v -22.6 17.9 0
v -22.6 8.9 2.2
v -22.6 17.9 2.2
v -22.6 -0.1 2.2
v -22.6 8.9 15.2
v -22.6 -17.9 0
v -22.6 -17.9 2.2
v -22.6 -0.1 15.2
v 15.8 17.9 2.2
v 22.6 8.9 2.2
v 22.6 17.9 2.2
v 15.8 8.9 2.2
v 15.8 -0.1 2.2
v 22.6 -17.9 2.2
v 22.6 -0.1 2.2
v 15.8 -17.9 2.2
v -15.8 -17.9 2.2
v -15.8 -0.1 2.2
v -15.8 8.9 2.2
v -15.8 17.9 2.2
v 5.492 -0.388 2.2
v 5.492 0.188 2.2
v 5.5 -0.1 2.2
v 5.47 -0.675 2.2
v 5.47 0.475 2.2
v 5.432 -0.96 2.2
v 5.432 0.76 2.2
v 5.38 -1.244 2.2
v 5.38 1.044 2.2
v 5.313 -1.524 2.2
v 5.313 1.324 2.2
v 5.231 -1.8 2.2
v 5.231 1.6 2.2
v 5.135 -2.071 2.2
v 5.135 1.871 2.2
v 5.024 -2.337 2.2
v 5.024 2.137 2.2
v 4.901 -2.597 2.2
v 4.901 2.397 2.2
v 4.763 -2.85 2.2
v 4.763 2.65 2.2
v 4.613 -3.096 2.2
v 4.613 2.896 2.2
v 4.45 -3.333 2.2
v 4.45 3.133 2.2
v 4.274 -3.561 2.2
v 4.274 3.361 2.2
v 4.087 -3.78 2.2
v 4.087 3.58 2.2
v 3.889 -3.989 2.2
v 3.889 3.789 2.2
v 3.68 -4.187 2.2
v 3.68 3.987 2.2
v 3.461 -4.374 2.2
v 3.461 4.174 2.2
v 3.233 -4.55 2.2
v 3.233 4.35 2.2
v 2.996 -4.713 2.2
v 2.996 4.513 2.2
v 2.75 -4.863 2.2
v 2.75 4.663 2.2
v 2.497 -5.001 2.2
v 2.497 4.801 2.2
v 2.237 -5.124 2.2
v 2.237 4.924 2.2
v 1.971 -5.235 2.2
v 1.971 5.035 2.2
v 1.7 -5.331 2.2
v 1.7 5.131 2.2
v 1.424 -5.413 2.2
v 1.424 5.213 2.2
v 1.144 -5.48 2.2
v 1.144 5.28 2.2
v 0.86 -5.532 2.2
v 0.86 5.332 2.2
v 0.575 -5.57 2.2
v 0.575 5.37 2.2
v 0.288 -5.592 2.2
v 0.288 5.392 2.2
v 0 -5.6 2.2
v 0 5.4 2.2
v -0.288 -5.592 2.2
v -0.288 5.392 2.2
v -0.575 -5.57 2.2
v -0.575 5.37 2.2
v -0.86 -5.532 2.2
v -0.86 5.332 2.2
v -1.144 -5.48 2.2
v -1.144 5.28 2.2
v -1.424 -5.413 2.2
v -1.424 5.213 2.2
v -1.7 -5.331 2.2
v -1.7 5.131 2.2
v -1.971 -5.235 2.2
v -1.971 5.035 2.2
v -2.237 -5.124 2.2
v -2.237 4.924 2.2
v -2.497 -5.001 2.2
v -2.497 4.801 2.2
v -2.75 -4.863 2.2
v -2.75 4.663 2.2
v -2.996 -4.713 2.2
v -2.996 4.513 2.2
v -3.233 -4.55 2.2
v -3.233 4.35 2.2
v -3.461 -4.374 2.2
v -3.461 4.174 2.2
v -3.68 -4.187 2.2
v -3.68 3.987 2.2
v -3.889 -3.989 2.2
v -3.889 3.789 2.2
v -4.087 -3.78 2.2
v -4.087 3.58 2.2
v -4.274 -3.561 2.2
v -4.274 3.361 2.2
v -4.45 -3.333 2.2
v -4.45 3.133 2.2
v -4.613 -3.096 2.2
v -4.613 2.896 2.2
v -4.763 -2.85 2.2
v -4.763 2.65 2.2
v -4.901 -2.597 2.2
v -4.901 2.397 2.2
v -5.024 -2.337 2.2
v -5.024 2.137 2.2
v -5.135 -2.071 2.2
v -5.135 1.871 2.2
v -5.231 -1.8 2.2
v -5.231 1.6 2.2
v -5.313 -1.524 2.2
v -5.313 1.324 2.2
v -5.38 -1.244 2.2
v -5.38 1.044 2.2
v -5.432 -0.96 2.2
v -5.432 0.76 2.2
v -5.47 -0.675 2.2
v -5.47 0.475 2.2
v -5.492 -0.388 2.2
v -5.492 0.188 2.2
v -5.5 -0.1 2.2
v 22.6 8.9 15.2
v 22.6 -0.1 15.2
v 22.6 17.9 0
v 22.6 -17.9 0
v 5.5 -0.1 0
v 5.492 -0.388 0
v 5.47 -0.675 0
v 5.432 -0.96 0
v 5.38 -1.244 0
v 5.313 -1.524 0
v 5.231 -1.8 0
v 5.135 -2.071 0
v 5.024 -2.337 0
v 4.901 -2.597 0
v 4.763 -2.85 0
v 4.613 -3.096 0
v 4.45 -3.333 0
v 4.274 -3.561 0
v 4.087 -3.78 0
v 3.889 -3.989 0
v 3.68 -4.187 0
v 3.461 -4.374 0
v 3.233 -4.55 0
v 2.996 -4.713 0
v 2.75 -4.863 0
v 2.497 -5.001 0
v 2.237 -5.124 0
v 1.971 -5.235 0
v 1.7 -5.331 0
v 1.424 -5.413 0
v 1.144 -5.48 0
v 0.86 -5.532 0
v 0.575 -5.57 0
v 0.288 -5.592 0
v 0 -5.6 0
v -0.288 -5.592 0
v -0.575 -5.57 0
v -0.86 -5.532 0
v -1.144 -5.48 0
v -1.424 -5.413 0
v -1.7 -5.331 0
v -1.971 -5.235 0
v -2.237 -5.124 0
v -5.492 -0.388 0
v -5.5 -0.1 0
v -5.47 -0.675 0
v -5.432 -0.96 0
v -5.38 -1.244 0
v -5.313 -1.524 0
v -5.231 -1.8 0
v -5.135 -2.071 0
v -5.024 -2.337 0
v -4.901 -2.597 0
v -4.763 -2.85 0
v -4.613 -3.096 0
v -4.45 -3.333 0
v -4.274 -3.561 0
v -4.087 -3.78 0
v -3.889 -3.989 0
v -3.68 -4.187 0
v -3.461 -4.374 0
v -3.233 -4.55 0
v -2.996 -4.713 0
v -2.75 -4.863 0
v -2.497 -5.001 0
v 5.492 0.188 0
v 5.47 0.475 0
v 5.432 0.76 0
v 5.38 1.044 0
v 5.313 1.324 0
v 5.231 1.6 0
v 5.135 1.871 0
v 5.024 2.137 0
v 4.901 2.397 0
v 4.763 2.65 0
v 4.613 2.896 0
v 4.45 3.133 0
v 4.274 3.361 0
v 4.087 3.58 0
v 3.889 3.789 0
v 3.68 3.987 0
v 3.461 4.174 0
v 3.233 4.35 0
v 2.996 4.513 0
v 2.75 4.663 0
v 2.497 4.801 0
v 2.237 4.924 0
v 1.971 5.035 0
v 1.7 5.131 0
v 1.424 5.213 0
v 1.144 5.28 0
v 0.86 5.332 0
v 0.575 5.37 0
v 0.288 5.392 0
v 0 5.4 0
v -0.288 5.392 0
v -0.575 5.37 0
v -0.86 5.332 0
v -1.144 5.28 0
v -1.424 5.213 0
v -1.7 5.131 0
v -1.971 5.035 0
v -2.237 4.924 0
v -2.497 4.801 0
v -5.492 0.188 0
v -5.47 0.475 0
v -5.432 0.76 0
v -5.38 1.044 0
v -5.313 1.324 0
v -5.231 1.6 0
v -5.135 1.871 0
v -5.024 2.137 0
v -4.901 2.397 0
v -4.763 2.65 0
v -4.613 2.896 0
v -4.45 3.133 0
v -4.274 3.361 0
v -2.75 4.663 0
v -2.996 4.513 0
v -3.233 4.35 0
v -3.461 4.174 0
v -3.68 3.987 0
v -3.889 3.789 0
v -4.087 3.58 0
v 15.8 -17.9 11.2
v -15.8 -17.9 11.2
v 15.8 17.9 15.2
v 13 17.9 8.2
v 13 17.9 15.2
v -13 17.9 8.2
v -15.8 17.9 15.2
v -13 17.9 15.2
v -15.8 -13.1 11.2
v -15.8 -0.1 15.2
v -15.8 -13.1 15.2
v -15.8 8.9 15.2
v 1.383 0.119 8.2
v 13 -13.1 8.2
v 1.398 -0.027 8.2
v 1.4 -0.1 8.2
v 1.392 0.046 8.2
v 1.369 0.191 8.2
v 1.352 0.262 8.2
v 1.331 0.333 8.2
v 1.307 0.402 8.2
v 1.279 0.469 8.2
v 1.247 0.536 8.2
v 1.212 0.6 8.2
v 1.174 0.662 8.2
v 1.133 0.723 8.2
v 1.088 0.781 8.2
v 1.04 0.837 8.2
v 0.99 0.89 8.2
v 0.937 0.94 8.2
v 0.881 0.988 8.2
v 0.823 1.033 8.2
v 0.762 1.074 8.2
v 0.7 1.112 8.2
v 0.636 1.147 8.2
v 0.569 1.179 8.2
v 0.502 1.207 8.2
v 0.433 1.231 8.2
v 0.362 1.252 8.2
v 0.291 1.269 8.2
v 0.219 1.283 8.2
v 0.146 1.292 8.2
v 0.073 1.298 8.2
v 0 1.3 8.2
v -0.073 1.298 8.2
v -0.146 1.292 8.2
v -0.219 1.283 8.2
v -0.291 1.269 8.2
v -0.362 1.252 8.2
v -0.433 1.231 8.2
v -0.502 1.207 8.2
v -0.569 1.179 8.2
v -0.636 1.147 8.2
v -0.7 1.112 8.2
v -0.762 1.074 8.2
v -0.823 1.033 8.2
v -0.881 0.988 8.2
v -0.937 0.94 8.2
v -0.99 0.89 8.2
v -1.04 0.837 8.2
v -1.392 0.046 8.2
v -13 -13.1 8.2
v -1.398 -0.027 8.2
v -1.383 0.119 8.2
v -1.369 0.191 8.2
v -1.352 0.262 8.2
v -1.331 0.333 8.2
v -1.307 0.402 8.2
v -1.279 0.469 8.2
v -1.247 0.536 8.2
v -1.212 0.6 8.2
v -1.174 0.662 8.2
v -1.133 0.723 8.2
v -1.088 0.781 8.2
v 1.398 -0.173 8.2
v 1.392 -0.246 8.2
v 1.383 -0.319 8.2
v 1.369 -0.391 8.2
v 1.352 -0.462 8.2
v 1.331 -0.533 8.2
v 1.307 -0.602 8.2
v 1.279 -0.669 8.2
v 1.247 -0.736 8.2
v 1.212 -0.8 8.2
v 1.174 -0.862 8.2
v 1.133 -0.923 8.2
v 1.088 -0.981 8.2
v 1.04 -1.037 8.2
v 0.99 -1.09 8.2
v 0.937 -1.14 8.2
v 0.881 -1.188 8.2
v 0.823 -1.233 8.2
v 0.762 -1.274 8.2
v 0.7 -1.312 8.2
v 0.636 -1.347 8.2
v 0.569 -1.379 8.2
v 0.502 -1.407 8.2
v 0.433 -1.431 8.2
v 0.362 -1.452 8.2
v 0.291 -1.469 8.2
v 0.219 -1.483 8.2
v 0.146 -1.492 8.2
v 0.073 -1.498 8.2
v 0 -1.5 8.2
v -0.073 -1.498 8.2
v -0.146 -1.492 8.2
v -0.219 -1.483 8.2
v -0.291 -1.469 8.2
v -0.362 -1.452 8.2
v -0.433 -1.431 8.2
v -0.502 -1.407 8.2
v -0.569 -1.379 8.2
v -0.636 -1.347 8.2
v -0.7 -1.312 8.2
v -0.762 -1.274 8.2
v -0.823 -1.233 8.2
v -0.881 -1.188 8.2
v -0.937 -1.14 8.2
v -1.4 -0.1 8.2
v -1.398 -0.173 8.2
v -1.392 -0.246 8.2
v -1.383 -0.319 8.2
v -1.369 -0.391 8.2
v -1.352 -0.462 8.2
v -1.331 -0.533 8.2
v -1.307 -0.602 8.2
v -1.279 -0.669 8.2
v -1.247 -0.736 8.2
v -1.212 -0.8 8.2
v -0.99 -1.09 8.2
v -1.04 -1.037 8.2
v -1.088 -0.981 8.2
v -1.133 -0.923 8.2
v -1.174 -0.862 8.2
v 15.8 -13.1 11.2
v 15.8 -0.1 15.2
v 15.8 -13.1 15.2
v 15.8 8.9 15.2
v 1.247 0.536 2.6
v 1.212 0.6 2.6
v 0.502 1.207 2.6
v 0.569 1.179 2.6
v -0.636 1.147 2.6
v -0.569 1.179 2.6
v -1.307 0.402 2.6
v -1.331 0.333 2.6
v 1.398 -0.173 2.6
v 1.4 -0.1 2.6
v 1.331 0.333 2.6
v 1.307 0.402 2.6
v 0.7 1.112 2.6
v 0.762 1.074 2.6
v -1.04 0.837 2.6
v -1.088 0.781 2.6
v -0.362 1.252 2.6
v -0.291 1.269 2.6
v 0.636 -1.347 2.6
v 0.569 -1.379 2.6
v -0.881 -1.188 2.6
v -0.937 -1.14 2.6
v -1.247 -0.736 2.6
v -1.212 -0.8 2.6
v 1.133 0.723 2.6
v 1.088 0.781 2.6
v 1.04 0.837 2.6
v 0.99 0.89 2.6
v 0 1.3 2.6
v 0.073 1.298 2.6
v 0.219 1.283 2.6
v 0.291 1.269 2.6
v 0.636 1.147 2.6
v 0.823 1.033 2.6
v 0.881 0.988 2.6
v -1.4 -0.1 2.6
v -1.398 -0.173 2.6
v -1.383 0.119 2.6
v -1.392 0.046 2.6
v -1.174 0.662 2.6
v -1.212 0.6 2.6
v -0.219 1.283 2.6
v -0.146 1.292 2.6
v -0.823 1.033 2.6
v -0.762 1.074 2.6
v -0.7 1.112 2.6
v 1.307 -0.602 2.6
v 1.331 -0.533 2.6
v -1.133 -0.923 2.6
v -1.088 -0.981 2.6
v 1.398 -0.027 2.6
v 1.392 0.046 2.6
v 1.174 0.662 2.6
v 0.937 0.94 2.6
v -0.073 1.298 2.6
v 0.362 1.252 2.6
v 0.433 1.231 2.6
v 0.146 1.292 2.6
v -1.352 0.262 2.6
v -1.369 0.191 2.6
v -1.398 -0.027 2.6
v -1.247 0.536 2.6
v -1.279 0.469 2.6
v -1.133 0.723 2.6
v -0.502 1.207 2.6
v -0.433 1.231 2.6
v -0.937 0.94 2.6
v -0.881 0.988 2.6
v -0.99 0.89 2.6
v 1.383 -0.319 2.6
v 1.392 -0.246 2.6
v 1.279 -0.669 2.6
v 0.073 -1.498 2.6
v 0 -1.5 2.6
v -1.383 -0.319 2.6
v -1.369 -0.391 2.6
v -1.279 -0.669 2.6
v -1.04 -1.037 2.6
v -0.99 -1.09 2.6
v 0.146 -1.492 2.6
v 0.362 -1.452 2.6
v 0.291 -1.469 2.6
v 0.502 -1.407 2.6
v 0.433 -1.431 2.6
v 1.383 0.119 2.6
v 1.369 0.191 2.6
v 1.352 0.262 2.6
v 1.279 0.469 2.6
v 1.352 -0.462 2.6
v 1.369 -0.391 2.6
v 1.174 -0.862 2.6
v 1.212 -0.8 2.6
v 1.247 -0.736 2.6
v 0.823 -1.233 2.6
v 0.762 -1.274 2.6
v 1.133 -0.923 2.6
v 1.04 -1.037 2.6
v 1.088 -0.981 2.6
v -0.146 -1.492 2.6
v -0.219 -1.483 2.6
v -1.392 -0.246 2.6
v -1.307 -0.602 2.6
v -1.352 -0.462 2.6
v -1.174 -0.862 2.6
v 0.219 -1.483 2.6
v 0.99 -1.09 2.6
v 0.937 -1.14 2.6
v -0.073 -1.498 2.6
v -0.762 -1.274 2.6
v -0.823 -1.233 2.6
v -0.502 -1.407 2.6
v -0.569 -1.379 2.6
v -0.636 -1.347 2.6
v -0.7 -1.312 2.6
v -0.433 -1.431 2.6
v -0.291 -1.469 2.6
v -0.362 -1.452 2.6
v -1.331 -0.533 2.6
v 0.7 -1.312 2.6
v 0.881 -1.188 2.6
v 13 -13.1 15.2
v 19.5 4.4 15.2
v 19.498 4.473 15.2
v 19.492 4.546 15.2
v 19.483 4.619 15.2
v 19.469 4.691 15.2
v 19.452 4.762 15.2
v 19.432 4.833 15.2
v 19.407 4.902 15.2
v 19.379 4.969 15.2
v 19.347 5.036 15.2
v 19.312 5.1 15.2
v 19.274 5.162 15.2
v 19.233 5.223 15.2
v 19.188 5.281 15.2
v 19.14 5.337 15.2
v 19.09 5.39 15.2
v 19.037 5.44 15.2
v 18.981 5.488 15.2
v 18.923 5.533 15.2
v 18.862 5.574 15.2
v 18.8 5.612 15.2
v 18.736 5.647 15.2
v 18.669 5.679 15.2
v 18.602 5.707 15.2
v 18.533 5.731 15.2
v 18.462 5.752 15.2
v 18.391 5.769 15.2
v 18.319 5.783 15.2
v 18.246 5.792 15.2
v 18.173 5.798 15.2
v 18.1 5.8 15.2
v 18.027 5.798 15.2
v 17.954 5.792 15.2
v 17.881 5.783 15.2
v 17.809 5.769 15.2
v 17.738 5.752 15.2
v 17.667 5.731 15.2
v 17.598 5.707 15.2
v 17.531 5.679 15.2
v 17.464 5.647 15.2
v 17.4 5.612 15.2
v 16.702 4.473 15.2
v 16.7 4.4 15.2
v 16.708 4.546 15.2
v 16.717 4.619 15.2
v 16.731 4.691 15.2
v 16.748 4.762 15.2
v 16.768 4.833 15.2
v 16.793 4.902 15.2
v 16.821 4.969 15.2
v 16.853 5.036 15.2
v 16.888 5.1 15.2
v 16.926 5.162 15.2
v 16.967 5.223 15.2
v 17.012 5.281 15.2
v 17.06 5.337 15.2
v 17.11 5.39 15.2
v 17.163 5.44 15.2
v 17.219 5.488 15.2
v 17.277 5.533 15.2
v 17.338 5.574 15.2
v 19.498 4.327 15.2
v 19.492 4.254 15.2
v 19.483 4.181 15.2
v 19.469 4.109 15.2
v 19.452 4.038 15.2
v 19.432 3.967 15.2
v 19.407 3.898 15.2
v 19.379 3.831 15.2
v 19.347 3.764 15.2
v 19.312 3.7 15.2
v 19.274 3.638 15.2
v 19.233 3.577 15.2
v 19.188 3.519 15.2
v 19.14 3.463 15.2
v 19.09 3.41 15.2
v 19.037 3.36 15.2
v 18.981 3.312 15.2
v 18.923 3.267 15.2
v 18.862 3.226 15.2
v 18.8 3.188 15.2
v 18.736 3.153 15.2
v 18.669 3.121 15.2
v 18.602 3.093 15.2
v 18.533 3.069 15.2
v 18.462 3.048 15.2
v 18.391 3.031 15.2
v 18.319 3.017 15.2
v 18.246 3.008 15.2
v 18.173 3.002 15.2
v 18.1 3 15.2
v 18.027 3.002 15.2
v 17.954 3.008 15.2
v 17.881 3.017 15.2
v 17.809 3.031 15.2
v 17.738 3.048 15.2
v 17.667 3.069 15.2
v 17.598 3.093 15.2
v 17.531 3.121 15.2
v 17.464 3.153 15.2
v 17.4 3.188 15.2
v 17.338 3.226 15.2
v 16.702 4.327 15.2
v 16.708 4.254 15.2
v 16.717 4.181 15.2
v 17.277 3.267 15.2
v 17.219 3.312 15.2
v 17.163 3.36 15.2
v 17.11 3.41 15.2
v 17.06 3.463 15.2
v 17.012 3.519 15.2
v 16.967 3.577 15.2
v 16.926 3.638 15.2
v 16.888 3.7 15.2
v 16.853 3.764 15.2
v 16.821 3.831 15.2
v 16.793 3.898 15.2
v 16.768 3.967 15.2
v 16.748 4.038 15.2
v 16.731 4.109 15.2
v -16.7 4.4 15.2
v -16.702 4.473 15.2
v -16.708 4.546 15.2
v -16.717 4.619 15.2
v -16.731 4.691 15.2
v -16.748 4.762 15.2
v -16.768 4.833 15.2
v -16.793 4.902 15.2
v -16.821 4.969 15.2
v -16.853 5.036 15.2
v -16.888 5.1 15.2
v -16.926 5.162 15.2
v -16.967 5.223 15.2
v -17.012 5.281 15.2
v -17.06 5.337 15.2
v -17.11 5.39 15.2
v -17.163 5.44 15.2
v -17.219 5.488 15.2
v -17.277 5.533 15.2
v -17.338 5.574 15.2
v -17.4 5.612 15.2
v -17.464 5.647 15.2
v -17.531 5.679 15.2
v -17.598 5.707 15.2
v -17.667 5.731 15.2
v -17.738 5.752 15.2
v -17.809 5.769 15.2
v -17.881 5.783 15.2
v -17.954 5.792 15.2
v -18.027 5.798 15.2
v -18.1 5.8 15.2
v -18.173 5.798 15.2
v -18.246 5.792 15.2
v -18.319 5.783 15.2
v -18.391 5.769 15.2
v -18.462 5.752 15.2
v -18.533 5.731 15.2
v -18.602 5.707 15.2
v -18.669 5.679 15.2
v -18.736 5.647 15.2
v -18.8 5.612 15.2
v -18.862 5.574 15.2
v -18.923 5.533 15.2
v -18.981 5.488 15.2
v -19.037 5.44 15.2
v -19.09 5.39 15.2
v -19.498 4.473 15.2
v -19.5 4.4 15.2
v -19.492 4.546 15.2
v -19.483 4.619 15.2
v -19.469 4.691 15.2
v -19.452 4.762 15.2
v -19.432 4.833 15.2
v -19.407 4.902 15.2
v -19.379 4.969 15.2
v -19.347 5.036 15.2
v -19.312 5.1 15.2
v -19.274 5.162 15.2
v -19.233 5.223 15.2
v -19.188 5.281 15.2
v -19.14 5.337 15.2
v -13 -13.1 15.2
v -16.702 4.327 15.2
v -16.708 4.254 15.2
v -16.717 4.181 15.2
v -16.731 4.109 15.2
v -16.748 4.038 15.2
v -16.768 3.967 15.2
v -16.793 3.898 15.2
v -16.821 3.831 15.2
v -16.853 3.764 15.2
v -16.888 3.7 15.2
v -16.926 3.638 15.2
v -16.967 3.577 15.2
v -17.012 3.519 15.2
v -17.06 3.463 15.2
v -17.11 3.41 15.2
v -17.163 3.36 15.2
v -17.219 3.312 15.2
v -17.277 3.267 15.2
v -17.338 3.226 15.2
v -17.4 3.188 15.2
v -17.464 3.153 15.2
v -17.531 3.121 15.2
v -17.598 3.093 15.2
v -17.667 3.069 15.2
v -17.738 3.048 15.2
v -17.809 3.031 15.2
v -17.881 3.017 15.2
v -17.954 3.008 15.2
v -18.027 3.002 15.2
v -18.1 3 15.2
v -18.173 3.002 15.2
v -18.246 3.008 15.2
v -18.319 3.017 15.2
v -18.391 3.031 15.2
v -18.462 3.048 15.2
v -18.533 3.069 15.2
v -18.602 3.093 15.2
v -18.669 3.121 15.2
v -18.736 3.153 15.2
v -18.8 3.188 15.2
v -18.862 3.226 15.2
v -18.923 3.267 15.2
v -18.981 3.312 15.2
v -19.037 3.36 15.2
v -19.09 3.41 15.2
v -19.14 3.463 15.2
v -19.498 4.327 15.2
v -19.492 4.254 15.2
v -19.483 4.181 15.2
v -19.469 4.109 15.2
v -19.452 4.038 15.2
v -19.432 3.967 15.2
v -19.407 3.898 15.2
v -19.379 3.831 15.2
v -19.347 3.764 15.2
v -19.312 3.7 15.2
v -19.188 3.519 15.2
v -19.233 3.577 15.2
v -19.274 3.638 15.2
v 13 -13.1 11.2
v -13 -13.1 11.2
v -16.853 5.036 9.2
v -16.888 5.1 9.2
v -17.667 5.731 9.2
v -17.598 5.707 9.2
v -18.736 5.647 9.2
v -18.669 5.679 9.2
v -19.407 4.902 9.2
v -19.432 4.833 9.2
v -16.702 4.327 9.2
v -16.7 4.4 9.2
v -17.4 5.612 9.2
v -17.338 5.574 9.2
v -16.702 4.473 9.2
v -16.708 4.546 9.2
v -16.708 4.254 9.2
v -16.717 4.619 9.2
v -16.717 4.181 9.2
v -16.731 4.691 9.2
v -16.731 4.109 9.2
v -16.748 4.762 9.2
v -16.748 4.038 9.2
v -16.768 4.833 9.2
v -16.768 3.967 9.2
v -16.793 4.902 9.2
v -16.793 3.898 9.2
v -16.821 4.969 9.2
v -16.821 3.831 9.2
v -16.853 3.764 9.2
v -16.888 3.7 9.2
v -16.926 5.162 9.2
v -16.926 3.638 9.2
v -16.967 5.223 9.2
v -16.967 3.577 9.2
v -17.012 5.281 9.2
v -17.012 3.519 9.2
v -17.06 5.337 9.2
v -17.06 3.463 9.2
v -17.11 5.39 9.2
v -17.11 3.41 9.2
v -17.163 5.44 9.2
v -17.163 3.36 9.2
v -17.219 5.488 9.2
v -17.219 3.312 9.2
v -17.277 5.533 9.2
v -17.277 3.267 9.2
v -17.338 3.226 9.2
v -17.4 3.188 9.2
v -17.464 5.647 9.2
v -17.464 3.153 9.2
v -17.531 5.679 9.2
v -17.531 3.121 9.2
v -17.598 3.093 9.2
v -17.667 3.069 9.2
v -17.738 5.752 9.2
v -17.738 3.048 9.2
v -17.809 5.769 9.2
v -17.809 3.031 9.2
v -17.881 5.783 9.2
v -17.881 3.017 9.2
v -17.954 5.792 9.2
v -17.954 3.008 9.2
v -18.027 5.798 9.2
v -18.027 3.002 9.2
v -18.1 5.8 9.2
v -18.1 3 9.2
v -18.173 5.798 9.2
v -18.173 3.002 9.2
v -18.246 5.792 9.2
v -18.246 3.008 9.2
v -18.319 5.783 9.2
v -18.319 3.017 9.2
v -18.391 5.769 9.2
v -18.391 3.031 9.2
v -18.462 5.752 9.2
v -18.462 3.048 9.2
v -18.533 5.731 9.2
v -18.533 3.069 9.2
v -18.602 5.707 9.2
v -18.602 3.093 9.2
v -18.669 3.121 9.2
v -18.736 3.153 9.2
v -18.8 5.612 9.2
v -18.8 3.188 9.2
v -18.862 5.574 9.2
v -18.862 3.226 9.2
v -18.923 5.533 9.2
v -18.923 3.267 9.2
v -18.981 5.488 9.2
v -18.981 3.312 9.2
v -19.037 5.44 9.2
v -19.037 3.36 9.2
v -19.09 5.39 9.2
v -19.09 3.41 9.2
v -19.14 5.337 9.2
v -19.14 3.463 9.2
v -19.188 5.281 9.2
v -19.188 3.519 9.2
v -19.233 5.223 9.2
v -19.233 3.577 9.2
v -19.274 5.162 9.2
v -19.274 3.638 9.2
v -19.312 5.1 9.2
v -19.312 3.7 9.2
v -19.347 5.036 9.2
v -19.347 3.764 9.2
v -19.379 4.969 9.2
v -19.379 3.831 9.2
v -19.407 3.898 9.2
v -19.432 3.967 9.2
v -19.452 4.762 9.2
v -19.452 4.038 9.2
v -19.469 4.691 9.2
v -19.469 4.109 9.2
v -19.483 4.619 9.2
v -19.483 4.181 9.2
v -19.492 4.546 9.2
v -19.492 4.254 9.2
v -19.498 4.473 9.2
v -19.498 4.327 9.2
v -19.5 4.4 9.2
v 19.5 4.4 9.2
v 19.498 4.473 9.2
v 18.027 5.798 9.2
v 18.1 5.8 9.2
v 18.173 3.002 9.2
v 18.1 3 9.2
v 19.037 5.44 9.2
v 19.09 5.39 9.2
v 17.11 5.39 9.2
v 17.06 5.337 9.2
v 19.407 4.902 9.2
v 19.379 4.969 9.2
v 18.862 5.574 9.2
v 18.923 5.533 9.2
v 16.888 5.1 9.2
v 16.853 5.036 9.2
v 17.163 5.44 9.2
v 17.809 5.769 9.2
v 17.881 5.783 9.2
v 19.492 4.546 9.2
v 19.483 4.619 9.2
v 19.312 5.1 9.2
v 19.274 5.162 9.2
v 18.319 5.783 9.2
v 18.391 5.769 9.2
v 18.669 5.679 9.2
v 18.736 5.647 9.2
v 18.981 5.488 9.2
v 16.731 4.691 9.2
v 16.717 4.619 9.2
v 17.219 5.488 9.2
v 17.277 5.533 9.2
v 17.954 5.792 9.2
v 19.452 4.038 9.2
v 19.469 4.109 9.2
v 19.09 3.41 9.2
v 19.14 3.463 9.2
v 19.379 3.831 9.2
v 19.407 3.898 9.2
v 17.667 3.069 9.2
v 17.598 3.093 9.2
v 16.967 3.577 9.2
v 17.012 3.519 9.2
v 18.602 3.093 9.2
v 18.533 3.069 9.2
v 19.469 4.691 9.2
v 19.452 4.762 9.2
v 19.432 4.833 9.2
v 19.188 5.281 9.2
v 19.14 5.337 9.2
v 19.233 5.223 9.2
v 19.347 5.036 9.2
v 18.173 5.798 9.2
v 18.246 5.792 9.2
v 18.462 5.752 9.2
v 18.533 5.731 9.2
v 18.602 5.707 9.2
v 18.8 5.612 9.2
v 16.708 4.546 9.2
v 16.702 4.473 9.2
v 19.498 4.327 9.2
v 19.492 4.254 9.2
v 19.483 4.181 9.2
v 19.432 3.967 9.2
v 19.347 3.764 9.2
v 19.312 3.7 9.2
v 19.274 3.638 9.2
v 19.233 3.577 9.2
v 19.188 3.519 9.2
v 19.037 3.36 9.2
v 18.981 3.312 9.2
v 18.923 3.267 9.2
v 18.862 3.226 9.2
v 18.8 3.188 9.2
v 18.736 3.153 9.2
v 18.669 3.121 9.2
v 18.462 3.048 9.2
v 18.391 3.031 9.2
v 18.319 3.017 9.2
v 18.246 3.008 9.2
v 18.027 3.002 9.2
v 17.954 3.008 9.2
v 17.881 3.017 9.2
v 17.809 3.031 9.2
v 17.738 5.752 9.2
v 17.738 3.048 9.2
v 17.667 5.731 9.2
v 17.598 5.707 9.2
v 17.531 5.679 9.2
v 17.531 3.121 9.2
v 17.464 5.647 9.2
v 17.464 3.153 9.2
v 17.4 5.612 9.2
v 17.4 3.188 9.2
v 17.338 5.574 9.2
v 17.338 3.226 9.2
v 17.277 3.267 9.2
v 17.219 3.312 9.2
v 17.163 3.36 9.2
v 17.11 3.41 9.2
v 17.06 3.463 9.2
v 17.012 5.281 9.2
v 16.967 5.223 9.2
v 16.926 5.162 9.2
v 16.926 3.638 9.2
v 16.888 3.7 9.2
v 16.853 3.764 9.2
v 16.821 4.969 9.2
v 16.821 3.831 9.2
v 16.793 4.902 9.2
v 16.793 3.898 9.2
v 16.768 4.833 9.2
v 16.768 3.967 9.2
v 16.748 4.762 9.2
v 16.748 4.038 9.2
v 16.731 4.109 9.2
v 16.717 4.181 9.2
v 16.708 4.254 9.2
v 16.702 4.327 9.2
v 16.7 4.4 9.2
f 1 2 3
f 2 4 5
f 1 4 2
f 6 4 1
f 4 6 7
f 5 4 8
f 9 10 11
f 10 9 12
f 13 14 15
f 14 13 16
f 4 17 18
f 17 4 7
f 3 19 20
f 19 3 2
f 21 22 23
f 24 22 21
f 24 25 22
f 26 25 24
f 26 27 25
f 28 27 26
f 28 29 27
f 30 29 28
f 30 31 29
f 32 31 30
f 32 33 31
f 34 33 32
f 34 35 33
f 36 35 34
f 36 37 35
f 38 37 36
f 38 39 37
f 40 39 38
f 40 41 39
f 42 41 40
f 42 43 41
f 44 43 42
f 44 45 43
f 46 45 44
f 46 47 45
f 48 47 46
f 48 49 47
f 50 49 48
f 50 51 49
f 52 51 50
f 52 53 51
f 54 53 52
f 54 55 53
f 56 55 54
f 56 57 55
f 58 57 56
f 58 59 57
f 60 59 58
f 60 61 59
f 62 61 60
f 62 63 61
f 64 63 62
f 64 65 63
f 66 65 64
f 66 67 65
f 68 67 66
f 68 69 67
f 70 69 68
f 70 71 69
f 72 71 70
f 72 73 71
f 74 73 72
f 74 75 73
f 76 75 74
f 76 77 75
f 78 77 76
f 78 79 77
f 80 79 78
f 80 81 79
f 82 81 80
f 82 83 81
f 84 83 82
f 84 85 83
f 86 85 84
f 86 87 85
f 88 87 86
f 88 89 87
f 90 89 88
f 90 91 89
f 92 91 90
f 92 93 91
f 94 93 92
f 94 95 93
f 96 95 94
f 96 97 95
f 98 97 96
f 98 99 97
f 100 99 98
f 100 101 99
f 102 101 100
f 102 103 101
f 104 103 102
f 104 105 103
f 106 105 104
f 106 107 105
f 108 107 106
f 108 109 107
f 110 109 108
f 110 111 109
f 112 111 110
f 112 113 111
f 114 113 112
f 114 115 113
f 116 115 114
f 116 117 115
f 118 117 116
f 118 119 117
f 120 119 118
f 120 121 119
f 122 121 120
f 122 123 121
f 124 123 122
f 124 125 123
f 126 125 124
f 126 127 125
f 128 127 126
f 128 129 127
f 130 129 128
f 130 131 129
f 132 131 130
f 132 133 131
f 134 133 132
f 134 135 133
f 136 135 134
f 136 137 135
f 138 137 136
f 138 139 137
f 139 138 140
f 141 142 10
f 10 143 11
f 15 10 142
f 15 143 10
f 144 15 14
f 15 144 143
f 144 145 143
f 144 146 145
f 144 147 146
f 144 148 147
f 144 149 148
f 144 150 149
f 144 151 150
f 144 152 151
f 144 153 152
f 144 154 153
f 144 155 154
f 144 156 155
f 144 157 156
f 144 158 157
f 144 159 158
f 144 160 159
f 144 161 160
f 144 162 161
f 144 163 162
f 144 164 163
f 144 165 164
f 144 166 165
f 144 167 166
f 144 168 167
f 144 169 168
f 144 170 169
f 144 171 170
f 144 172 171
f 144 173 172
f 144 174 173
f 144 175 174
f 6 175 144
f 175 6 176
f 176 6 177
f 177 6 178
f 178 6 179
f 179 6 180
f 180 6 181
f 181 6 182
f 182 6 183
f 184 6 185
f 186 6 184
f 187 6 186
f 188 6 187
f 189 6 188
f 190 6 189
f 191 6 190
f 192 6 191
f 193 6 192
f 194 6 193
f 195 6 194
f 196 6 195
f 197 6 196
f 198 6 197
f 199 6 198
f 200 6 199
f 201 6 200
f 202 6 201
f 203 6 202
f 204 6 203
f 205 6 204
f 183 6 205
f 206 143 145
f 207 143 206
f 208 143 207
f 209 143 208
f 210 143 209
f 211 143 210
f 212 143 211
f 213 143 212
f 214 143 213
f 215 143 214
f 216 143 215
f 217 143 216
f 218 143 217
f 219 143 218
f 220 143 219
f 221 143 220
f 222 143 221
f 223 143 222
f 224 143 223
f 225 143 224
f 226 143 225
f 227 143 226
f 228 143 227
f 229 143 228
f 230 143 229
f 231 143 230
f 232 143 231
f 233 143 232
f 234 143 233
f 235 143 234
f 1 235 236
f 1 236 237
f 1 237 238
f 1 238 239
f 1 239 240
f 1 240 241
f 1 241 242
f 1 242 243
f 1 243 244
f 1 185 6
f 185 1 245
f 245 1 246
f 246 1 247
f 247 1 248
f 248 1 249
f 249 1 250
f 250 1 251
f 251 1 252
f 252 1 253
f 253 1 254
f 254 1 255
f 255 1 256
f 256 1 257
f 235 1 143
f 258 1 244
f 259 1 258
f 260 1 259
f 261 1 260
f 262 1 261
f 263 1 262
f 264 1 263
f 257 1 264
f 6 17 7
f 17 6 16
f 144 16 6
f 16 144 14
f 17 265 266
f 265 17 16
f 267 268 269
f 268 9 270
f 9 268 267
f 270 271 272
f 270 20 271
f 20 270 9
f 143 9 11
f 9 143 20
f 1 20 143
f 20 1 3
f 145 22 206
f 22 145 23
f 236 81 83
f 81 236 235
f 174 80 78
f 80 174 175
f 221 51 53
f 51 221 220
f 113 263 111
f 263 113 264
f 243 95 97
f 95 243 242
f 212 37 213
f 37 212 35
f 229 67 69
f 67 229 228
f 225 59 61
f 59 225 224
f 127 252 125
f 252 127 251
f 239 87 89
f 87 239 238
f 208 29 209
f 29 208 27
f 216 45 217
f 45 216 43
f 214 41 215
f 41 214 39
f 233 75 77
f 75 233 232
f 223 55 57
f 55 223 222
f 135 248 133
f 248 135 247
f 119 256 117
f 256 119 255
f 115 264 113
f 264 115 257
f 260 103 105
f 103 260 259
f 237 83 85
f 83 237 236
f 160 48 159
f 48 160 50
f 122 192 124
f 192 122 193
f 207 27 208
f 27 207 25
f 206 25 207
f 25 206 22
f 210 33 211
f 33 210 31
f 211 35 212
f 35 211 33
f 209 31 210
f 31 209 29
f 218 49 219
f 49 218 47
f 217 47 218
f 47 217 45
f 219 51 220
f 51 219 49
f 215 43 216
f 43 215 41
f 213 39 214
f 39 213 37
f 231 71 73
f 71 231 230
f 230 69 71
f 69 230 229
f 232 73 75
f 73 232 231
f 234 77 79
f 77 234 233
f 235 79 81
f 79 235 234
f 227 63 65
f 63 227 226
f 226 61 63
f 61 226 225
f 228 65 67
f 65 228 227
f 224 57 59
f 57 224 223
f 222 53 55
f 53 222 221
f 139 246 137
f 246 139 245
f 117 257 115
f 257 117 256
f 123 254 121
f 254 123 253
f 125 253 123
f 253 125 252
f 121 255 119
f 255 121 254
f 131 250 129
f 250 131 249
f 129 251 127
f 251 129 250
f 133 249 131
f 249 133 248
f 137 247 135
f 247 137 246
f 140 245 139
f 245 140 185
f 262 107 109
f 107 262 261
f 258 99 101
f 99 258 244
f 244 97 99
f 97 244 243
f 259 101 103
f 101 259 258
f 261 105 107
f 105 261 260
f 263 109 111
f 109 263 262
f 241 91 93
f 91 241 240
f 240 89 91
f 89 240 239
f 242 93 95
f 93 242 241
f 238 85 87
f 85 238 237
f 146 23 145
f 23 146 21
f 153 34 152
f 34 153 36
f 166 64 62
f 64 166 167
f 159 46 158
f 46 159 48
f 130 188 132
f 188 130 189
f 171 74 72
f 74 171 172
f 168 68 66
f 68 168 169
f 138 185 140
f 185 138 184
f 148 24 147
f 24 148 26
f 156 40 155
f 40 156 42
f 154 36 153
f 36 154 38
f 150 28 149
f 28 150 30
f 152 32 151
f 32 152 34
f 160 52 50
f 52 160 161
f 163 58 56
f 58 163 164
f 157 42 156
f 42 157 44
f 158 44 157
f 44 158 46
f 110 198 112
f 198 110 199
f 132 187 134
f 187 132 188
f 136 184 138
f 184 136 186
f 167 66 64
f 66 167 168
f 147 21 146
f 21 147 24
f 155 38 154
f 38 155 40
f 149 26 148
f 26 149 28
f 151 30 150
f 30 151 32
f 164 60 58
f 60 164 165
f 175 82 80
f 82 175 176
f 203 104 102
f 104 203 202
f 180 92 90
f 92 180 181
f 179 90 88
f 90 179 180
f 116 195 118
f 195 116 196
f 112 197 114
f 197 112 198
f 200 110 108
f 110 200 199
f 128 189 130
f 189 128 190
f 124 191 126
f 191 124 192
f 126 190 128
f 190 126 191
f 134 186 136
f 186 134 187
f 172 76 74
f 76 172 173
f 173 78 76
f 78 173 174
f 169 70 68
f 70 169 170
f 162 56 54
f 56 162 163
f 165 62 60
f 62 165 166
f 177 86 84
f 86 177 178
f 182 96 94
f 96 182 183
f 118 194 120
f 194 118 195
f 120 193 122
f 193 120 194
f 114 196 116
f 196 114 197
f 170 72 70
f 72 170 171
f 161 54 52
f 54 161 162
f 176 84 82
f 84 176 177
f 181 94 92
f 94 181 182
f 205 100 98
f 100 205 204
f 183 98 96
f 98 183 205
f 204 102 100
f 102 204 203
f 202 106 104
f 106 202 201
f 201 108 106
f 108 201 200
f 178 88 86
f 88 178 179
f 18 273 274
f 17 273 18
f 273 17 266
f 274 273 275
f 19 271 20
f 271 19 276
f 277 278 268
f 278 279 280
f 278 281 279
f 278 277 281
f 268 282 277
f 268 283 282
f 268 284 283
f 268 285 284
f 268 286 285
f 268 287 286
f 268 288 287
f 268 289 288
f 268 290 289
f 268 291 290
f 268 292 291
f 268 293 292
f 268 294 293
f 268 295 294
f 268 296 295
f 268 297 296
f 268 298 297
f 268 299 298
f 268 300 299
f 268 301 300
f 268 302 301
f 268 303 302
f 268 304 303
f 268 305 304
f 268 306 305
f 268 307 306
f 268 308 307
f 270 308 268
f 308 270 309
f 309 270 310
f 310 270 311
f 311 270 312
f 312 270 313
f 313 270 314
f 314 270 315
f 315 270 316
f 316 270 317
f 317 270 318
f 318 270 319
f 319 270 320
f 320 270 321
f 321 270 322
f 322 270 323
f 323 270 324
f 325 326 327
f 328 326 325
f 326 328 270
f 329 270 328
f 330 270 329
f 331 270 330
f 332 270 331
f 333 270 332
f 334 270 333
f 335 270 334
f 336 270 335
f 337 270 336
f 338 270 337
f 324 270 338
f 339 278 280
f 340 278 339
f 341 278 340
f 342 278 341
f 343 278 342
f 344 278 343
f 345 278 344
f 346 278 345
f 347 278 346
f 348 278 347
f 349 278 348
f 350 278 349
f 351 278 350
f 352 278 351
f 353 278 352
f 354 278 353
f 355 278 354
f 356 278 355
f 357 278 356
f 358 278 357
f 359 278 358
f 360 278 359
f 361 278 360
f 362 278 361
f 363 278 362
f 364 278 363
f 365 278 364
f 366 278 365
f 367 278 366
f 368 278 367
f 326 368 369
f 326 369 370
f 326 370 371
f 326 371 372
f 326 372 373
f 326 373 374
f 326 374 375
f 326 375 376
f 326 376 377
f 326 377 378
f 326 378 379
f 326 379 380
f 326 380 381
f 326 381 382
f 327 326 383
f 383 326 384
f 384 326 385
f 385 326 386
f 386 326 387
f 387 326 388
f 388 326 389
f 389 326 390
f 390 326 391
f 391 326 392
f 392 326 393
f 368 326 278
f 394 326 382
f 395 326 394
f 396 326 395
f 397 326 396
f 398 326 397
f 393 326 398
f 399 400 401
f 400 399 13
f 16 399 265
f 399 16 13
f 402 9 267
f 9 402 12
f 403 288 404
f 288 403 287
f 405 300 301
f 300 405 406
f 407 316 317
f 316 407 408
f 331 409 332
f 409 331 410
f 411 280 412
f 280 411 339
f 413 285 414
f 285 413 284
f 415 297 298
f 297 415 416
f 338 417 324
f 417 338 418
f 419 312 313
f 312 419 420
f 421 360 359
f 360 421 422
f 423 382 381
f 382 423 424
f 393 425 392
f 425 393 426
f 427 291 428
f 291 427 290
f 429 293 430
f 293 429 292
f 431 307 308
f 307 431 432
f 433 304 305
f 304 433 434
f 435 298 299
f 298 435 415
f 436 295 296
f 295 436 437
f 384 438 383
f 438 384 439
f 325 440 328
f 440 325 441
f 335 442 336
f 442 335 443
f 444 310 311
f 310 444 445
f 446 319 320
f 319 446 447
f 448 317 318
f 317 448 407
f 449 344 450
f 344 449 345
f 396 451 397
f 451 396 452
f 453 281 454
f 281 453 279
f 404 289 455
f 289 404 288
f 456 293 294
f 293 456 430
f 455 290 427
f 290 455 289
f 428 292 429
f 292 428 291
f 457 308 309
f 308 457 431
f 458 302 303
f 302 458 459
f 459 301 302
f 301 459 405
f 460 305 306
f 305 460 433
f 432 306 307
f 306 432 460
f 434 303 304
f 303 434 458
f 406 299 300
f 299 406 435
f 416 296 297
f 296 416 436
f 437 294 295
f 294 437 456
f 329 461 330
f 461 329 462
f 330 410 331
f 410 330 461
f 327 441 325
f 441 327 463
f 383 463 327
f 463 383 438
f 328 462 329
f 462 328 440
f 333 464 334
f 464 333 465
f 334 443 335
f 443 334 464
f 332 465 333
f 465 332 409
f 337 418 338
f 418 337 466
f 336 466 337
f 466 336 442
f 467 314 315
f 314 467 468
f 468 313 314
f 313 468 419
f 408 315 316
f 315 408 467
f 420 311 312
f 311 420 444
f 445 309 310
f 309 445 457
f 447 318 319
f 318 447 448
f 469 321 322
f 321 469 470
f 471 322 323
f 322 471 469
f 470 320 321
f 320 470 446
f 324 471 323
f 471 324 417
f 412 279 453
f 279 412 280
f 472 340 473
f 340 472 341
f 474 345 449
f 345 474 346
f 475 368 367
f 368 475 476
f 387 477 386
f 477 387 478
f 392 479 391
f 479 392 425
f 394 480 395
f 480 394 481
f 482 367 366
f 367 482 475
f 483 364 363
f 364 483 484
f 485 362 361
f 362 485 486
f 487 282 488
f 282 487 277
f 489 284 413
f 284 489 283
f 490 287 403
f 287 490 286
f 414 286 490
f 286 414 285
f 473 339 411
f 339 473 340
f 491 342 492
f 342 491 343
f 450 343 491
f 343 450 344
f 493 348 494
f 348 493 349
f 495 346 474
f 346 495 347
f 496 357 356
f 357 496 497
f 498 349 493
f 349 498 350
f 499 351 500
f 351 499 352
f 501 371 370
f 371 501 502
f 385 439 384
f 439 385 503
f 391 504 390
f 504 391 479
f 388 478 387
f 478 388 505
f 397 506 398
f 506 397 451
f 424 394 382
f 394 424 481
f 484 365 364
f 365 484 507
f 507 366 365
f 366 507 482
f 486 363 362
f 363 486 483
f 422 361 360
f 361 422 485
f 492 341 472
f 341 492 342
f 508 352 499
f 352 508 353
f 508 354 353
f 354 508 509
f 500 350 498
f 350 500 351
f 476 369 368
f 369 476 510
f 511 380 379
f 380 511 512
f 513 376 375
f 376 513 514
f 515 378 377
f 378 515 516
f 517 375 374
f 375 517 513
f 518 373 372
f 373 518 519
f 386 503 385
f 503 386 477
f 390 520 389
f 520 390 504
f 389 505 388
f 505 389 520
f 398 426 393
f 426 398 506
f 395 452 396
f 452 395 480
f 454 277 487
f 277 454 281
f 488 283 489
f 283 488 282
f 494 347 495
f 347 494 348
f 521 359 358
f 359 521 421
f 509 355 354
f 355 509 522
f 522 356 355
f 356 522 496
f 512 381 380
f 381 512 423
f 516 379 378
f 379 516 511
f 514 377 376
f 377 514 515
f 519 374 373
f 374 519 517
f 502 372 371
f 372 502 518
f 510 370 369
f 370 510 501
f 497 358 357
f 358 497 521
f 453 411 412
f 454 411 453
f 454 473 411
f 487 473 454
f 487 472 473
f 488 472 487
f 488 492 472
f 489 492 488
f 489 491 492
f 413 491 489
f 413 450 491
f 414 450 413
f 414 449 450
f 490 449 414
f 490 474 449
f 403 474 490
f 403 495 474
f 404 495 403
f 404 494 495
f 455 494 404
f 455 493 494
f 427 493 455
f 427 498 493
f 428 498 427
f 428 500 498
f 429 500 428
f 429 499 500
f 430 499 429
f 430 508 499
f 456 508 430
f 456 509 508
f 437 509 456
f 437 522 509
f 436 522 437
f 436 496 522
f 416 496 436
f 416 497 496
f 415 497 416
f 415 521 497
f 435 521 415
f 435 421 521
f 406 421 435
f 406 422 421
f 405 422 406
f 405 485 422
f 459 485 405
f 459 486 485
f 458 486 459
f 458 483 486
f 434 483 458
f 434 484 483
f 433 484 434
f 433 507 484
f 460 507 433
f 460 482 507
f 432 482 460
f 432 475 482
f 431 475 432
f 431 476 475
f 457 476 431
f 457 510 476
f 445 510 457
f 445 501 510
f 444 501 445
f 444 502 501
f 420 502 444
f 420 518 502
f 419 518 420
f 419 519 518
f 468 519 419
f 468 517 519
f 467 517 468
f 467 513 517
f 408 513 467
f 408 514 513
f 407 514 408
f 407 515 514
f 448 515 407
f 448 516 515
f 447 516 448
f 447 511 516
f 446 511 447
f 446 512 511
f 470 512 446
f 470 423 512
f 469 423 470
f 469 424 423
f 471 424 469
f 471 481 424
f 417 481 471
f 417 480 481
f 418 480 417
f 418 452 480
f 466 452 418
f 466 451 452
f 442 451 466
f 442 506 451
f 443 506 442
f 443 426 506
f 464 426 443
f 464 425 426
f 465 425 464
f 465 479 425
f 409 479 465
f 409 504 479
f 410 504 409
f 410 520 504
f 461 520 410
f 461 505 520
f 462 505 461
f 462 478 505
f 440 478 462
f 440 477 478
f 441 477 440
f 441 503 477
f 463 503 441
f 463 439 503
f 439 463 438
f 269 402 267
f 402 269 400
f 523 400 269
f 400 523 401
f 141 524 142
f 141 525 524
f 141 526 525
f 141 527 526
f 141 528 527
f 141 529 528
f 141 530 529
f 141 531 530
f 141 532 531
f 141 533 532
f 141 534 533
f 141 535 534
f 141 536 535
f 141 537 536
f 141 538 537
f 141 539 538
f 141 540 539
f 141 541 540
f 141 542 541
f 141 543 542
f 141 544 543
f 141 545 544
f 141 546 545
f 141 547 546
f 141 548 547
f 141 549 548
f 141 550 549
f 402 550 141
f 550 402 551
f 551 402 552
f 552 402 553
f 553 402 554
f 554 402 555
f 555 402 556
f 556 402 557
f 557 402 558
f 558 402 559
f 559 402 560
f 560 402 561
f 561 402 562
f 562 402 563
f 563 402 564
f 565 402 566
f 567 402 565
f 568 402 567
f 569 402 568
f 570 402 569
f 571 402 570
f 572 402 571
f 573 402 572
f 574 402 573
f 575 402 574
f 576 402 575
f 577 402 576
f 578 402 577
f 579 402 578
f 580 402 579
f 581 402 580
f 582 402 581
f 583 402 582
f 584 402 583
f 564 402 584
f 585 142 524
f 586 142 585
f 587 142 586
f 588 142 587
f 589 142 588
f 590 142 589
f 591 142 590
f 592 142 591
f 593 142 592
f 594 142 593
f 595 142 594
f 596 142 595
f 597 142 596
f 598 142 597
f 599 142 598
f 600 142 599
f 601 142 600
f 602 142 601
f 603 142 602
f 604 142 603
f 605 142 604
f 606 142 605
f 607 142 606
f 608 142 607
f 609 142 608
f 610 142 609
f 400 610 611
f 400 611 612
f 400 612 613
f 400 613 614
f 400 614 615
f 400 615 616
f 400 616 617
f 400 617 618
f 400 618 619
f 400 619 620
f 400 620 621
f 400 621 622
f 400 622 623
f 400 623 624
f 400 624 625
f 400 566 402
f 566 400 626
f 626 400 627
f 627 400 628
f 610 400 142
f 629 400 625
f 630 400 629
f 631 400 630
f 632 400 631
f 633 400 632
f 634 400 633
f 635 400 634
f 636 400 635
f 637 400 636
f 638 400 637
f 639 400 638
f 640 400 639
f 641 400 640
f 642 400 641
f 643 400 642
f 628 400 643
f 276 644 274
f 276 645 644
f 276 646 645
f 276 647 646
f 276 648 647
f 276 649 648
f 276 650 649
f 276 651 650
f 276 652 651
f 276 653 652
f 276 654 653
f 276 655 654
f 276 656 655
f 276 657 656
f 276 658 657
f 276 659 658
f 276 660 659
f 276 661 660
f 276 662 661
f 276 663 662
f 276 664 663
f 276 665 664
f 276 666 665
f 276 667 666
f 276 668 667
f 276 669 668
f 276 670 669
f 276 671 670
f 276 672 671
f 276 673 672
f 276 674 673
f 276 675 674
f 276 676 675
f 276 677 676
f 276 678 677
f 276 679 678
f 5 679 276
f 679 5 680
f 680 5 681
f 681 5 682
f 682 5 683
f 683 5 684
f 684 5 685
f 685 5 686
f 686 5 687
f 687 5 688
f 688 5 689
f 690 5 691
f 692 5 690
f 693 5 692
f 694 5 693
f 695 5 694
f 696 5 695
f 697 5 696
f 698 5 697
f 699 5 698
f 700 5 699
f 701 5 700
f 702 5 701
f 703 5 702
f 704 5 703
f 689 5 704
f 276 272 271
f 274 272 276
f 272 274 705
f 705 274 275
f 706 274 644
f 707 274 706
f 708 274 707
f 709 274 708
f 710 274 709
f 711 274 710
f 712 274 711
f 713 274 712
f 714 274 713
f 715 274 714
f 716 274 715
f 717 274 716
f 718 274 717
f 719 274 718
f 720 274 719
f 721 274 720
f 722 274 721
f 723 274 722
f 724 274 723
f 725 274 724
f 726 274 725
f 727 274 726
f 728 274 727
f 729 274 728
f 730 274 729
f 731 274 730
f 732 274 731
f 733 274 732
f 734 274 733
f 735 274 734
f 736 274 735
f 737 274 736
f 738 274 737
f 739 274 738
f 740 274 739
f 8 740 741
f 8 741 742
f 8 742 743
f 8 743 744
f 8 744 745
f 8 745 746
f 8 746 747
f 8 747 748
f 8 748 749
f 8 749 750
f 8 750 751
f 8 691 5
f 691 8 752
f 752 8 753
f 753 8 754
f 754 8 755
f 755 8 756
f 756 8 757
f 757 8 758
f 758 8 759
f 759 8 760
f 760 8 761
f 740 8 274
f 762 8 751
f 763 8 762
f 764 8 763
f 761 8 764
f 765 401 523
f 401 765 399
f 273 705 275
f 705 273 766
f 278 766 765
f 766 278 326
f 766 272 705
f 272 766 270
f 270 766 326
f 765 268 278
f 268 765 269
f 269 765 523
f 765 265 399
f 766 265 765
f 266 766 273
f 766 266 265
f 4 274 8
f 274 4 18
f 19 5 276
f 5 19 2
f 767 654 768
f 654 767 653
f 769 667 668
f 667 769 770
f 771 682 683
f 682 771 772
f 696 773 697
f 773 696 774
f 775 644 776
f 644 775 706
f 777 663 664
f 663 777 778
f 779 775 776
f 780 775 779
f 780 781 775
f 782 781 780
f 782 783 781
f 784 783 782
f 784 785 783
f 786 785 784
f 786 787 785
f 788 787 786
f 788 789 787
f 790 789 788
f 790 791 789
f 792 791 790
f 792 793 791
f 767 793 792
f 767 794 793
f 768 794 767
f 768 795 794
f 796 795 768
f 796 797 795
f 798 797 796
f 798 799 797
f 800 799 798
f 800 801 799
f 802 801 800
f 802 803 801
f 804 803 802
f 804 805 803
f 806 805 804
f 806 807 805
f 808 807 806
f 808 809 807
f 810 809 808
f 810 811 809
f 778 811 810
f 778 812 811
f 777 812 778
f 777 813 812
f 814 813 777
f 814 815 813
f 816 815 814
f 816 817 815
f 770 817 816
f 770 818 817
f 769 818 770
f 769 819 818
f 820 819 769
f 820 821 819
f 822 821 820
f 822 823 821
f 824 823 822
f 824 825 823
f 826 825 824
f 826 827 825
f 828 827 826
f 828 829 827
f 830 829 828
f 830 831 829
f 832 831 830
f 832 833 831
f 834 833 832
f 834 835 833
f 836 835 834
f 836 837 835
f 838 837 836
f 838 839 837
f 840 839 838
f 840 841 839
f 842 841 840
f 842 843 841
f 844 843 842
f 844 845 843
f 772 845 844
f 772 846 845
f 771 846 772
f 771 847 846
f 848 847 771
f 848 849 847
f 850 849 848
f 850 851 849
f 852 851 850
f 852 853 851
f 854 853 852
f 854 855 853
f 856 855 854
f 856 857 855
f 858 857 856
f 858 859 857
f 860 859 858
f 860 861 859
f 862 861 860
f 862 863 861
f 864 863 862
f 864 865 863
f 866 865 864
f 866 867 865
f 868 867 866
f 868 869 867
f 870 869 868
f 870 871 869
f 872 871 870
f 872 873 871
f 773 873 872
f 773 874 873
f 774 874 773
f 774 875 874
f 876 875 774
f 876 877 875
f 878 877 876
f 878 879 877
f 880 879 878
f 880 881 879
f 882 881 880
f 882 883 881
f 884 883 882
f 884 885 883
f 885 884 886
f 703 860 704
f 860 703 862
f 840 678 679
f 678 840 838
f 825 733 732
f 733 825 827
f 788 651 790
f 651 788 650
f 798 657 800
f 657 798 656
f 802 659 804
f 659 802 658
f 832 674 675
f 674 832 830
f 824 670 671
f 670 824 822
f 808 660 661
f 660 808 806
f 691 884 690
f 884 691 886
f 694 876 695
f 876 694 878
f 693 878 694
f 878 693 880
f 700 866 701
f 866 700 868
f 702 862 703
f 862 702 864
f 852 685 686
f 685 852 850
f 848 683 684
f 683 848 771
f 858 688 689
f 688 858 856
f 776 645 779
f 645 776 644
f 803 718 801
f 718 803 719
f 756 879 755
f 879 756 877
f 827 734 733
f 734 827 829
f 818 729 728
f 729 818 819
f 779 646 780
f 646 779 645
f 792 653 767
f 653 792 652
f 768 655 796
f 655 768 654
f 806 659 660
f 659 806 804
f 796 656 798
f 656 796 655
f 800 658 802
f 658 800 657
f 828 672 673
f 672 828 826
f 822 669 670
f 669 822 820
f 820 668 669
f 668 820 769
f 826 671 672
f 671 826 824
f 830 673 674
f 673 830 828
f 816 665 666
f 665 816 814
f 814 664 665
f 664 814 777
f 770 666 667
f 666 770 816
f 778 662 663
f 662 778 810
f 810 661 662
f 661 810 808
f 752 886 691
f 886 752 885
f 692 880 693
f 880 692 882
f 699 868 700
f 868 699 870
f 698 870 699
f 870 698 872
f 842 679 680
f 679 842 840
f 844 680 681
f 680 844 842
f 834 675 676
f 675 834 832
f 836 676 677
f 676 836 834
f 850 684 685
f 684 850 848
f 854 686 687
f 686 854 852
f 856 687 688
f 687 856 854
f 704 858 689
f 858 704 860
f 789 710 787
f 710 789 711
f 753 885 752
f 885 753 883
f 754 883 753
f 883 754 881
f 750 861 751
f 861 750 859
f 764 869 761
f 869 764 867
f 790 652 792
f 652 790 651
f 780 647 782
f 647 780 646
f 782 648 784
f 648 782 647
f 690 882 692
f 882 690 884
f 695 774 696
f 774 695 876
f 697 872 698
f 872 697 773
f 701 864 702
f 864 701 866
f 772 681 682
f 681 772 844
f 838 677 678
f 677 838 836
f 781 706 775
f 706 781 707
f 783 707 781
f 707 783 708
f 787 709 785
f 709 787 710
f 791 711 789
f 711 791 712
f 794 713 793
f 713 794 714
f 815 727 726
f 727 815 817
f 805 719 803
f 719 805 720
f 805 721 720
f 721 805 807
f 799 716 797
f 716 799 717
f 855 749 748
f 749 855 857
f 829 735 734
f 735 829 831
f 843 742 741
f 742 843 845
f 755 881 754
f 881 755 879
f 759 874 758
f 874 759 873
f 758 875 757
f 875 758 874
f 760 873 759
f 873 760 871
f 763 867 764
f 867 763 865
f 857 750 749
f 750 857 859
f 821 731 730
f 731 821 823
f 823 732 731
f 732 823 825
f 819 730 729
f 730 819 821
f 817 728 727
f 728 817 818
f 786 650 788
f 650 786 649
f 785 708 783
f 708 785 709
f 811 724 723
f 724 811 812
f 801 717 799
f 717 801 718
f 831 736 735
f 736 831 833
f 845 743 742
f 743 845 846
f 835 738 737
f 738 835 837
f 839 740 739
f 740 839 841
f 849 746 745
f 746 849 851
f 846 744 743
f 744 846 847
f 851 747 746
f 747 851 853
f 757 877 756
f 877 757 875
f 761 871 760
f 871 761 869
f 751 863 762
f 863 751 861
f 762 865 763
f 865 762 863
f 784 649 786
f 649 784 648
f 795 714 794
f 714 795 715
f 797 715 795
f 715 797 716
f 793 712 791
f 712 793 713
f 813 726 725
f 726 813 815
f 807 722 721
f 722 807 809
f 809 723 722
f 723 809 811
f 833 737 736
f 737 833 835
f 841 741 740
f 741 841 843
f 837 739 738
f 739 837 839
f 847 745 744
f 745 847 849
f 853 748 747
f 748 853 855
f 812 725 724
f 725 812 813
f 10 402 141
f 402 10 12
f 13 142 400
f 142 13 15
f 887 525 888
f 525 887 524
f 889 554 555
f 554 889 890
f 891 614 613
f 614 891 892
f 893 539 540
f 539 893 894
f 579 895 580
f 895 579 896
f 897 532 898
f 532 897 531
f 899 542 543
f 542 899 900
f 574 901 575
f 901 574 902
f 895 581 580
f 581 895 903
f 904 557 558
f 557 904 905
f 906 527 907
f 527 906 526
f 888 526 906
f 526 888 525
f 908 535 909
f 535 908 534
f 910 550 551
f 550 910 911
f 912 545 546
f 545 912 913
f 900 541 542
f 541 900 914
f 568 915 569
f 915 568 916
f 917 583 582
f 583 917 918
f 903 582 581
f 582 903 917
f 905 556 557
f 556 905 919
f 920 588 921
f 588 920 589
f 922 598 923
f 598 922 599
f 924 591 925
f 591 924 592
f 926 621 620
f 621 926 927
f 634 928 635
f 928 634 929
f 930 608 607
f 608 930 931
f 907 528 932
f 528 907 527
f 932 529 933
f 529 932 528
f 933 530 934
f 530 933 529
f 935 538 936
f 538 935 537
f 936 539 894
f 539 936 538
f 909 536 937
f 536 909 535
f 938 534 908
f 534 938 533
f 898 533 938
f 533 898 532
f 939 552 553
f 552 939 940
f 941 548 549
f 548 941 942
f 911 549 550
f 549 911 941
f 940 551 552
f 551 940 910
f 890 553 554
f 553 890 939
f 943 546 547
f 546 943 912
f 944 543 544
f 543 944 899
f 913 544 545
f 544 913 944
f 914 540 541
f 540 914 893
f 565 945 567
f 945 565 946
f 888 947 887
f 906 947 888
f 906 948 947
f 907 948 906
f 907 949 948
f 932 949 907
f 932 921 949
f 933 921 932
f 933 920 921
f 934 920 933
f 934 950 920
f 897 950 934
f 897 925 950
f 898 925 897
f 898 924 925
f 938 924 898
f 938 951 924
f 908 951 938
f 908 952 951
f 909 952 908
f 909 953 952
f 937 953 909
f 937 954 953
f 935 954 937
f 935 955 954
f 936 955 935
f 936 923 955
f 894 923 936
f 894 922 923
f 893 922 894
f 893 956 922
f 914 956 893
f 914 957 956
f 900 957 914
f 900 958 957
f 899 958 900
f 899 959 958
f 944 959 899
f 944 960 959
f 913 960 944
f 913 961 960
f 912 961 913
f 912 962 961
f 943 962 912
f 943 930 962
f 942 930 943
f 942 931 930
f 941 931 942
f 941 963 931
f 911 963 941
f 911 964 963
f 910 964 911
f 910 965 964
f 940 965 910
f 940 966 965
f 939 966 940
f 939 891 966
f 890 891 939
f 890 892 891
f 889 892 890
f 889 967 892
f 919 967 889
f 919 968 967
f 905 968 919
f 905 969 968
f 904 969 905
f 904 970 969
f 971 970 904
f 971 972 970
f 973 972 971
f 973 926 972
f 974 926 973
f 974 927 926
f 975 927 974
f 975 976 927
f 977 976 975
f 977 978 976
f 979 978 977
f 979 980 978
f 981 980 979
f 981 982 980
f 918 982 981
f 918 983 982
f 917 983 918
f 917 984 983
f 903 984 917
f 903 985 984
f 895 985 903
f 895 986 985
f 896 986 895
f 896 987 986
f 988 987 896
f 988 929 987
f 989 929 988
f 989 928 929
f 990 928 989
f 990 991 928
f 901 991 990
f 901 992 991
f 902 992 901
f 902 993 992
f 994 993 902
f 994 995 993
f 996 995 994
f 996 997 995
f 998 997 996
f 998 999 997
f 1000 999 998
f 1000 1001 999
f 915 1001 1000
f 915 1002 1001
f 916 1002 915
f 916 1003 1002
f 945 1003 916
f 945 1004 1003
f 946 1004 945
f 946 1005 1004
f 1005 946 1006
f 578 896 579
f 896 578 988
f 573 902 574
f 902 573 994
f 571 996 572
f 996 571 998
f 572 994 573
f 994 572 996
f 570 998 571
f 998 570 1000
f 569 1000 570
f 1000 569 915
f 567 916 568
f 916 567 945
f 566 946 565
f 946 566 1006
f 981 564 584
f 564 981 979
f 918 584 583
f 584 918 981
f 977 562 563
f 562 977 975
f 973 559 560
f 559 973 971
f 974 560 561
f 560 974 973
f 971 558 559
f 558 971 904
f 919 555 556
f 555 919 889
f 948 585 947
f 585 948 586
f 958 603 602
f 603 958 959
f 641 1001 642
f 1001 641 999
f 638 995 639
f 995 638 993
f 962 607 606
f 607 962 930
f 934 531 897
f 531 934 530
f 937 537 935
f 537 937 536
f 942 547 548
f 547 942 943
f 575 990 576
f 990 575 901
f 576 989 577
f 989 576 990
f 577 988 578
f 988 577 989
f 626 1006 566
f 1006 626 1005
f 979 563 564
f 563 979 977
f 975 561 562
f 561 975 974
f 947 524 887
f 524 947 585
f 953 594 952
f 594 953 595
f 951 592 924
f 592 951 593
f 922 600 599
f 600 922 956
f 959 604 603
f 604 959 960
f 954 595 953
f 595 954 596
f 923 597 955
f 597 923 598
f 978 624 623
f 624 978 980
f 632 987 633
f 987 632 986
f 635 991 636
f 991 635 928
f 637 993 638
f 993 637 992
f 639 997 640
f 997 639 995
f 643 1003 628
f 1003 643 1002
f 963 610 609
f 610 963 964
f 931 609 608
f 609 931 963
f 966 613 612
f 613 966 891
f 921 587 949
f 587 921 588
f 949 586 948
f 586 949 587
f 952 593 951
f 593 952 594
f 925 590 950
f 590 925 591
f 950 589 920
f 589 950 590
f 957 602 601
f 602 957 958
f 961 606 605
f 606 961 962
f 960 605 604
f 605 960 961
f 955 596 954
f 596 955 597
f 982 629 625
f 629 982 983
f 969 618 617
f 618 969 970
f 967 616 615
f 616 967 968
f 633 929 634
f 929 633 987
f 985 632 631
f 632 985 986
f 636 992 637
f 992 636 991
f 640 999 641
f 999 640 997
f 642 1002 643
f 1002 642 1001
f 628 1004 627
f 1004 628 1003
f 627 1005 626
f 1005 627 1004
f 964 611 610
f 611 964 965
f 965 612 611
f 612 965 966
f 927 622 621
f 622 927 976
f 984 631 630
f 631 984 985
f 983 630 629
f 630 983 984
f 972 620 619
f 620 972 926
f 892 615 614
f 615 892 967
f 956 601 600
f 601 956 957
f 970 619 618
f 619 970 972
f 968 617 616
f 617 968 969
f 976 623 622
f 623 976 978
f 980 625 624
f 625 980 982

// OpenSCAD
// Amiga 1200 micro SD card reader bracket - square version
// RealGusi (C) 2020
// https://maniana.net
// Creative Commons - Attribution - Non-Commercial - Share Alike license.

$fn = 120;

$back_wall_thickness = 4.8;
$back_wall_height = 3;
$side_wall_thickness = 2.8;
$side_wall_height = 7.0;
$reader_width = 26;
$reader_length = 31;

$plate_width = 45.2;
$plate_length = $reader_length + $back_wall_thickness;
$mounting_hole_depth = 2.2;
$mounting_hole_diameter = 11 / 2;
$mounting_hole_distance = 18;
$plate_thickness = 6;

$screw_diameter = 2.8 / 2;

$screw_block_size = 9;
$screw_block_depth = 6;

$reader_base_width = $reader_width + 2 * $side_wall_thickness;

module main_plate_base (){
    difference (){
        translate( [ - $plate_width / 2, - $plate_length / 2, 0])
        cube( [ $plate_width, $plate_length, $mounting_hole_depth]);
        
        translate( [ 0, $plate_length / 2 - $mounting_hole_distance, 0])
        cylinder( h = $mounting_hole_depth, r = $mounting_hole_diameter);    
    }
} 

module main_plate_middle (){
    union () {
        difference () {       
            translate( [ - $reader_base_width / 2, 
                         - $plate_length / 2, 
                           $mounting_hole_depth])
            cube( [ $reader_base_width, 
                    $plate_length, 
                    $plate_thickness]);

            translate( [ 0, $plate_length / 2 - $mounting_hole_distance,
                         $mounting_hole_depth])
            cylinder( h = $plate_thickness, r = $screw_diameter);    
        }
        //Hole plug
        //Remove it so you don't have to drill through
        translate( [ 0, $plate_length / 2 - $mounting_hole_distance,
                     $mounting_hole_depth])
        cylinder( h = 0.4, r = $screw_diameter);    
    }
}

module main_plate_walls (){
    //side walls
    difference () {       
        translate( [ - $reader_base_width / 2, 
                     - $plate_length / 2 + $back_wall_thickness, 
                       $mounting_hole_depth + $plate_thickness])
        cube( [ $reader_base_width, 
                $plate_length - $back_wall_thickness, 
                $side_wall_height]);

        translate( [ - $reader_width / 2, 
                     - $plate_length / 2 + $back_wall_thickness, 
                       $mounting_hole_depth + $plate_thickness])
        cube( [ $reader_width, $reader_length, $side_wall_height]);
    }
    
    //back wall
    translate( [ - $reader_base_width / 2, 
                 - $plate_length / 2, 
                   $mounting_hole_depth + $plate_thickness])
    cube( [ $reader_base_width, 
            $back_wall_thickness, 
            $back_wall_height]);
}

module screw_blocks (){
    difference () {       
        translate( [ - $plate_width / 2, 
                       $plate_length / 2 - 2 * $screw_block_size , 
                       $mounting_hole_depth])
        cube( [ $screw_block_size, 
                $screw_block_size, 
                $side_wall_height + $plate_thickness]);

        translate( [ - $plate_width / 2 + $screw_block_size / 2, 
                       $plate_length / 2 - 1.5 * $screw_block_size, 
                       $mounting_hole_depth + $plate_thickness + $side_wall_height - 
                       $screw_block_depth])
        cylinder( h = $screw_block_depth, r = $screw_diameter);    
    }
    
    difference () {       
        translate( [   $plate_width / 2 - $screw_block_size, 
                       $plate_length / 2 - 2 * $screw_block_size , 
                       $mounting_hole_depth])
        cube( [ $screw_block_size, 
                $screw_block_size, 
                $side_wall_height + $plate_thickness]);

        translate( [   $plate_width / 2 - $screw_block_size / 2, 
                       $plate_length / 2 - 1.5 * $screw_block_size, 
                       $mounting_hole_depth + $plate_thickness + $side_wall_height - 
                       $screw_block_depth])
        cylinder( h = $screw_block_depth, r = $screw_diameter);    
    }
    
}


main_plate_base();
main_plate_middle();
main_plate_walls();
screw_blocks();
